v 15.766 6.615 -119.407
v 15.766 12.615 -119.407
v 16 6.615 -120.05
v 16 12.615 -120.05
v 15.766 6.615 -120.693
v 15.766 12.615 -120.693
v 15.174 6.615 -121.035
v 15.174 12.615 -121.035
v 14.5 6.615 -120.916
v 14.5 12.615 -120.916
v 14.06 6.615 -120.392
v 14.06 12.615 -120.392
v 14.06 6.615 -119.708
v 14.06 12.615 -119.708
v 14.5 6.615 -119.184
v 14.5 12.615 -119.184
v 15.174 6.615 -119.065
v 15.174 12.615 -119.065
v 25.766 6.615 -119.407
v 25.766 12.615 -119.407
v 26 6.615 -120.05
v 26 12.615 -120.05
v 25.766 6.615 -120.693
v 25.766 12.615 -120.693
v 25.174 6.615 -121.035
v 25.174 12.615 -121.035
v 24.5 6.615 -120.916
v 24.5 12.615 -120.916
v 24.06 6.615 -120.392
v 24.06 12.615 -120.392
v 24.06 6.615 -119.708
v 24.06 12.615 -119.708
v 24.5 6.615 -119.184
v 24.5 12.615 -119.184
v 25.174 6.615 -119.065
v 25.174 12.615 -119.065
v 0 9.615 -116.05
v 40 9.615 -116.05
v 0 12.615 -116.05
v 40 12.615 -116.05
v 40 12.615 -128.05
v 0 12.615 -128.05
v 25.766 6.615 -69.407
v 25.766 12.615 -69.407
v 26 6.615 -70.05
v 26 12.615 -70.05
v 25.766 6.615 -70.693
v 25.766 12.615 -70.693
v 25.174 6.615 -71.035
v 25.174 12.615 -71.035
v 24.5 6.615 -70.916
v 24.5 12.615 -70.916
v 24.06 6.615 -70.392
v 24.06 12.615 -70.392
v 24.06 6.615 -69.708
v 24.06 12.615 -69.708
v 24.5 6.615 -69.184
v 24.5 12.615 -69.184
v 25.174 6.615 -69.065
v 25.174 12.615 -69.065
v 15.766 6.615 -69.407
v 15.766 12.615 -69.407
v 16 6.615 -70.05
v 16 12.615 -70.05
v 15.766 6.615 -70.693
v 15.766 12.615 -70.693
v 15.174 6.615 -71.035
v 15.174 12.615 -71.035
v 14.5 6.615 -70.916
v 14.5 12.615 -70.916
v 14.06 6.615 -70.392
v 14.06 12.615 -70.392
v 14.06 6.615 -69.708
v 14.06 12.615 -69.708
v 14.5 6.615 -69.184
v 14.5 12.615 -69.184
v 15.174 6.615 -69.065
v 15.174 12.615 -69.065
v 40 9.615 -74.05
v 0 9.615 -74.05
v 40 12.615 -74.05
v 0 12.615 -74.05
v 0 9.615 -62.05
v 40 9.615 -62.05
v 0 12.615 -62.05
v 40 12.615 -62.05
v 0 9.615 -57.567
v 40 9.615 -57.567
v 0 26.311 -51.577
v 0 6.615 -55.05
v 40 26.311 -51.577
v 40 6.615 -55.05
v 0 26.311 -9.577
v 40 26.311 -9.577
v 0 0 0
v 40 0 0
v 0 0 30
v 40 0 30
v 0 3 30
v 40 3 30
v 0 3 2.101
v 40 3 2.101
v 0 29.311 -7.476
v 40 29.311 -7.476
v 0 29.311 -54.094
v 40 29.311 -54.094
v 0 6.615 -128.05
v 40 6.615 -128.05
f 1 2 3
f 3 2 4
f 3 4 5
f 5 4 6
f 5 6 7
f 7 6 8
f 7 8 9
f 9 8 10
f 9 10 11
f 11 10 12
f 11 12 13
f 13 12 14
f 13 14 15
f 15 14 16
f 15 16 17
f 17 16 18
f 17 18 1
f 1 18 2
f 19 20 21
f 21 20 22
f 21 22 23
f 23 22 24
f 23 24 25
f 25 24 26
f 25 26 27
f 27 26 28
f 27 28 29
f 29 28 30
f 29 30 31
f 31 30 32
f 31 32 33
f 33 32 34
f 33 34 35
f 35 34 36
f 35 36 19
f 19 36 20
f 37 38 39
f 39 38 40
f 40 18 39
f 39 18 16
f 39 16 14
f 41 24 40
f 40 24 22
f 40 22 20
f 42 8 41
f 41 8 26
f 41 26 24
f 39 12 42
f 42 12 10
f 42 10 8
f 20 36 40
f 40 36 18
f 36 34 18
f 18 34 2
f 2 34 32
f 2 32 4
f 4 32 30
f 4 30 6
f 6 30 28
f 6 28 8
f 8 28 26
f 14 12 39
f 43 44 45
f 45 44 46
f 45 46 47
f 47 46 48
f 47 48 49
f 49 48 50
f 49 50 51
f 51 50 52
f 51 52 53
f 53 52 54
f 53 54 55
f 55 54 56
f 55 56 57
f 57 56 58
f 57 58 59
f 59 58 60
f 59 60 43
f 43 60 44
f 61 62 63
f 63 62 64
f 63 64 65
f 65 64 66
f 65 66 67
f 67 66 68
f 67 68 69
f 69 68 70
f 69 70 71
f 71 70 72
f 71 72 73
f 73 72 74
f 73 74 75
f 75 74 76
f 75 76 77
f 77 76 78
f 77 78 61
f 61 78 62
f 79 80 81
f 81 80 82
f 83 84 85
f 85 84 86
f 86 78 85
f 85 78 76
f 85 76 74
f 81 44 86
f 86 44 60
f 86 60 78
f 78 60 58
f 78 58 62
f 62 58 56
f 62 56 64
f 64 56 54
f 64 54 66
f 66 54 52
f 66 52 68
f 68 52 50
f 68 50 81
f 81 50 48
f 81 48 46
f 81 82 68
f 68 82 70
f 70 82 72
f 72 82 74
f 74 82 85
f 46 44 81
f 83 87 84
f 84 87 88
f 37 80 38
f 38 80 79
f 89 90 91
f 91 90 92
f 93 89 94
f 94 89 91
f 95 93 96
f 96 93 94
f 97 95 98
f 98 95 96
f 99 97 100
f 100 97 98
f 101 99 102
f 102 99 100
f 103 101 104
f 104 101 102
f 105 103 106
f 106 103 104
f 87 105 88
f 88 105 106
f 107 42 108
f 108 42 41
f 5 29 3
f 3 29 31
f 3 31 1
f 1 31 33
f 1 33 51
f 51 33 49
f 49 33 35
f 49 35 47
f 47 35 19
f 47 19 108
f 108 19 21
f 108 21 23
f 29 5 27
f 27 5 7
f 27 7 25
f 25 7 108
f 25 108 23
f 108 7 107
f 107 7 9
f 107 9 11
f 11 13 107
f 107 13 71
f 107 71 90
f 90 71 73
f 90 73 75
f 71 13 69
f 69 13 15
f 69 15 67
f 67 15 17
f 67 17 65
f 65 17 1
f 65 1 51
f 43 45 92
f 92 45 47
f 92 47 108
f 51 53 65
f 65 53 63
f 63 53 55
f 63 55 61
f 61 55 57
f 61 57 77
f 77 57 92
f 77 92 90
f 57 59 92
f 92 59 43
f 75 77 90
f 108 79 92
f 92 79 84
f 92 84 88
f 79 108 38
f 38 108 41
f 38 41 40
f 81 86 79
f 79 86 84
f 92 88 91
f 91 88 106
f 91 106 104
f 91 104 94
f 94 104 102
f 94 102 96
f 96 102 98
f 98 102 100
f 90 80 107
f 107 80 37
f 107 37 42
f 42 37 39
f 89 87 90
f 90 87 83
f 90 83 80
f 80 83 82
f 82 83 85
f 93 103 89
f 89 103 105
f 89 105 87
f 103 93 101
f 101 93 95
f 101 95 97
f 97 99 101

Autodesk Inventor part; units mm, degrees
ref_plane "YZ Plane" through (0, 0, 0) normal (1, 0, 0) x (0, 1, 0)
ref_plane "XZ Plane" through (0, 0, 0) normal (0, 1, 0) x (-1, 0, 0)
ref_plane "XY Plane" through (0, 0, 0) normal (0, 0, 1) x (1, 0, 0)
sketch "Boceto1" plane through (0, 0, 0) normal (1, 0, 0) x (0, 1, 0)
  line L0 (3, 30) -> (0, 30)
  line L1 (0, 30) -> (0, 0)
  line L2 (0, 0) -> (26.3114, -9.5766)
  line L3 (0, 0) -> (28, 0) construction
  line L4 (26.3114, -9.5766) -> (26.3114, -51.5766)
  line L5 (26.3114, -51.5766) -> (6.6152, -55.0495)
  line L6 (6.6152, -55.0495) -> (6.6152, -128.0495)
  line L7 (6.6152, -128.0495) -> (9.6152, -128.0495)
  line L8 (9.6152, -128.0495) -> (9.6152, -57.5668)
  line L9 (6.6152, -55.0495) -> (6.6152, -58.0495)
  line L10 (29.3114, -9.5766) -> (29.3114, -54.0939)
  line L11 (27.3375, -6.7575) -> (3, 2.1006)
  line L12 (3, 2.1006) -> (3, 30)
  line L13 (29.3114, -54.0939) -> (9.6152, -57.5668)
  line L14 (27.3375, -6.7575) -> (29.3114, -7.4759)
  line L15 (29.3114, -9.5766) -> (29.3114, -7.4759)
  dimension "d0" = 3
  dimension "d2" = 28
  dimension "d3" = 20
  dimension "d6" = 100
  dimension "d7" = 73
  dimension "d8" = 3
  dimension "d9" = 3
  dimension "d12" = 3
  dimension "d13" = 3
extrude "Extrusión1" add sketch "Boceto1" along normal blind 40
sketch "Boceto4" plane through (0, 9.6152, -57.5668) normal (0, 1, 0) x (1, 0, 0)
  line L0 (0, 70.4827) -> (40, 70.4827) projected
  line L1 (40, -2.5173) -> (40, 70.4827) projected
  line L2 (0, 70.4827) -> (40, 70.4827)
  line L3 (40, 70.4827) -> (40, 58.4827)
  line L4 (40, 58.4827) -> (0, 58.4827)
  line L5 (0, 58.4827) -> (0, 70.4827)
  line L6 (11, 58.4827) -> (30, 58.4827)
  line L7 (30, 58.4827) -> (30, 16.4827)
  line L8 (30, 16.4827) -> (11, 16.4827)
  line L9 (11, 16.4827) -> (11, 58.4827)
  line L10 (0, 16.4827) -> (40, 16.4827)
  line L11 (40, 16.4827) -> (40, 4.4827)
  line L12 (40, 4.4827) -> (0, 4.4827)
  line L13 (0, 4.4827) -> (0, 16.4827)
  circle A0 centre (25, 62.483) radius 1
  circle A1 centre (15, 62.483) radius 1
  circle A2 centre (25, 12.483) radius 1
  circle A3 centre (15, 12.483) radius 1
  point P0 (0, -57.5668)
  point P1 (30, 16.4827)
  dimension "d22" = 12
  dimension "d23" = 19
  dimension "d24" = 42
  dimension "d25" = 12
  dimension "d26" = 2
  dimension "d27" = 2
  dimension "d28" = 2
  dimension "d29" = 2
extrude "Extrusión4" add sketch "Boceto4" along normal blind 3 contours L0 L1 L4 L5 | L1 L12 L13 L10 L8
extrude "Extrusión5" cut sketch "Boceto4" against normal blind 3 contours A0 | A1 | A2 | A3
thread "Rosca1" size "M2x0.4" class "6H" standard "ANSI Metric M Profile" full length
thread "Rosca2" size "M2x0.4" class "6H" standard "ANSI Metric M Profile" full length
thread "Rosca3" size "M2x0.4" class "6H" standard "ANSI Metric M Profile" full length
thread "Rosca4" size "M2x0.4" class "6H" standard "ANSI Metric M Profile" full length
properties part number "1.2.4.UpperArmLink2"
